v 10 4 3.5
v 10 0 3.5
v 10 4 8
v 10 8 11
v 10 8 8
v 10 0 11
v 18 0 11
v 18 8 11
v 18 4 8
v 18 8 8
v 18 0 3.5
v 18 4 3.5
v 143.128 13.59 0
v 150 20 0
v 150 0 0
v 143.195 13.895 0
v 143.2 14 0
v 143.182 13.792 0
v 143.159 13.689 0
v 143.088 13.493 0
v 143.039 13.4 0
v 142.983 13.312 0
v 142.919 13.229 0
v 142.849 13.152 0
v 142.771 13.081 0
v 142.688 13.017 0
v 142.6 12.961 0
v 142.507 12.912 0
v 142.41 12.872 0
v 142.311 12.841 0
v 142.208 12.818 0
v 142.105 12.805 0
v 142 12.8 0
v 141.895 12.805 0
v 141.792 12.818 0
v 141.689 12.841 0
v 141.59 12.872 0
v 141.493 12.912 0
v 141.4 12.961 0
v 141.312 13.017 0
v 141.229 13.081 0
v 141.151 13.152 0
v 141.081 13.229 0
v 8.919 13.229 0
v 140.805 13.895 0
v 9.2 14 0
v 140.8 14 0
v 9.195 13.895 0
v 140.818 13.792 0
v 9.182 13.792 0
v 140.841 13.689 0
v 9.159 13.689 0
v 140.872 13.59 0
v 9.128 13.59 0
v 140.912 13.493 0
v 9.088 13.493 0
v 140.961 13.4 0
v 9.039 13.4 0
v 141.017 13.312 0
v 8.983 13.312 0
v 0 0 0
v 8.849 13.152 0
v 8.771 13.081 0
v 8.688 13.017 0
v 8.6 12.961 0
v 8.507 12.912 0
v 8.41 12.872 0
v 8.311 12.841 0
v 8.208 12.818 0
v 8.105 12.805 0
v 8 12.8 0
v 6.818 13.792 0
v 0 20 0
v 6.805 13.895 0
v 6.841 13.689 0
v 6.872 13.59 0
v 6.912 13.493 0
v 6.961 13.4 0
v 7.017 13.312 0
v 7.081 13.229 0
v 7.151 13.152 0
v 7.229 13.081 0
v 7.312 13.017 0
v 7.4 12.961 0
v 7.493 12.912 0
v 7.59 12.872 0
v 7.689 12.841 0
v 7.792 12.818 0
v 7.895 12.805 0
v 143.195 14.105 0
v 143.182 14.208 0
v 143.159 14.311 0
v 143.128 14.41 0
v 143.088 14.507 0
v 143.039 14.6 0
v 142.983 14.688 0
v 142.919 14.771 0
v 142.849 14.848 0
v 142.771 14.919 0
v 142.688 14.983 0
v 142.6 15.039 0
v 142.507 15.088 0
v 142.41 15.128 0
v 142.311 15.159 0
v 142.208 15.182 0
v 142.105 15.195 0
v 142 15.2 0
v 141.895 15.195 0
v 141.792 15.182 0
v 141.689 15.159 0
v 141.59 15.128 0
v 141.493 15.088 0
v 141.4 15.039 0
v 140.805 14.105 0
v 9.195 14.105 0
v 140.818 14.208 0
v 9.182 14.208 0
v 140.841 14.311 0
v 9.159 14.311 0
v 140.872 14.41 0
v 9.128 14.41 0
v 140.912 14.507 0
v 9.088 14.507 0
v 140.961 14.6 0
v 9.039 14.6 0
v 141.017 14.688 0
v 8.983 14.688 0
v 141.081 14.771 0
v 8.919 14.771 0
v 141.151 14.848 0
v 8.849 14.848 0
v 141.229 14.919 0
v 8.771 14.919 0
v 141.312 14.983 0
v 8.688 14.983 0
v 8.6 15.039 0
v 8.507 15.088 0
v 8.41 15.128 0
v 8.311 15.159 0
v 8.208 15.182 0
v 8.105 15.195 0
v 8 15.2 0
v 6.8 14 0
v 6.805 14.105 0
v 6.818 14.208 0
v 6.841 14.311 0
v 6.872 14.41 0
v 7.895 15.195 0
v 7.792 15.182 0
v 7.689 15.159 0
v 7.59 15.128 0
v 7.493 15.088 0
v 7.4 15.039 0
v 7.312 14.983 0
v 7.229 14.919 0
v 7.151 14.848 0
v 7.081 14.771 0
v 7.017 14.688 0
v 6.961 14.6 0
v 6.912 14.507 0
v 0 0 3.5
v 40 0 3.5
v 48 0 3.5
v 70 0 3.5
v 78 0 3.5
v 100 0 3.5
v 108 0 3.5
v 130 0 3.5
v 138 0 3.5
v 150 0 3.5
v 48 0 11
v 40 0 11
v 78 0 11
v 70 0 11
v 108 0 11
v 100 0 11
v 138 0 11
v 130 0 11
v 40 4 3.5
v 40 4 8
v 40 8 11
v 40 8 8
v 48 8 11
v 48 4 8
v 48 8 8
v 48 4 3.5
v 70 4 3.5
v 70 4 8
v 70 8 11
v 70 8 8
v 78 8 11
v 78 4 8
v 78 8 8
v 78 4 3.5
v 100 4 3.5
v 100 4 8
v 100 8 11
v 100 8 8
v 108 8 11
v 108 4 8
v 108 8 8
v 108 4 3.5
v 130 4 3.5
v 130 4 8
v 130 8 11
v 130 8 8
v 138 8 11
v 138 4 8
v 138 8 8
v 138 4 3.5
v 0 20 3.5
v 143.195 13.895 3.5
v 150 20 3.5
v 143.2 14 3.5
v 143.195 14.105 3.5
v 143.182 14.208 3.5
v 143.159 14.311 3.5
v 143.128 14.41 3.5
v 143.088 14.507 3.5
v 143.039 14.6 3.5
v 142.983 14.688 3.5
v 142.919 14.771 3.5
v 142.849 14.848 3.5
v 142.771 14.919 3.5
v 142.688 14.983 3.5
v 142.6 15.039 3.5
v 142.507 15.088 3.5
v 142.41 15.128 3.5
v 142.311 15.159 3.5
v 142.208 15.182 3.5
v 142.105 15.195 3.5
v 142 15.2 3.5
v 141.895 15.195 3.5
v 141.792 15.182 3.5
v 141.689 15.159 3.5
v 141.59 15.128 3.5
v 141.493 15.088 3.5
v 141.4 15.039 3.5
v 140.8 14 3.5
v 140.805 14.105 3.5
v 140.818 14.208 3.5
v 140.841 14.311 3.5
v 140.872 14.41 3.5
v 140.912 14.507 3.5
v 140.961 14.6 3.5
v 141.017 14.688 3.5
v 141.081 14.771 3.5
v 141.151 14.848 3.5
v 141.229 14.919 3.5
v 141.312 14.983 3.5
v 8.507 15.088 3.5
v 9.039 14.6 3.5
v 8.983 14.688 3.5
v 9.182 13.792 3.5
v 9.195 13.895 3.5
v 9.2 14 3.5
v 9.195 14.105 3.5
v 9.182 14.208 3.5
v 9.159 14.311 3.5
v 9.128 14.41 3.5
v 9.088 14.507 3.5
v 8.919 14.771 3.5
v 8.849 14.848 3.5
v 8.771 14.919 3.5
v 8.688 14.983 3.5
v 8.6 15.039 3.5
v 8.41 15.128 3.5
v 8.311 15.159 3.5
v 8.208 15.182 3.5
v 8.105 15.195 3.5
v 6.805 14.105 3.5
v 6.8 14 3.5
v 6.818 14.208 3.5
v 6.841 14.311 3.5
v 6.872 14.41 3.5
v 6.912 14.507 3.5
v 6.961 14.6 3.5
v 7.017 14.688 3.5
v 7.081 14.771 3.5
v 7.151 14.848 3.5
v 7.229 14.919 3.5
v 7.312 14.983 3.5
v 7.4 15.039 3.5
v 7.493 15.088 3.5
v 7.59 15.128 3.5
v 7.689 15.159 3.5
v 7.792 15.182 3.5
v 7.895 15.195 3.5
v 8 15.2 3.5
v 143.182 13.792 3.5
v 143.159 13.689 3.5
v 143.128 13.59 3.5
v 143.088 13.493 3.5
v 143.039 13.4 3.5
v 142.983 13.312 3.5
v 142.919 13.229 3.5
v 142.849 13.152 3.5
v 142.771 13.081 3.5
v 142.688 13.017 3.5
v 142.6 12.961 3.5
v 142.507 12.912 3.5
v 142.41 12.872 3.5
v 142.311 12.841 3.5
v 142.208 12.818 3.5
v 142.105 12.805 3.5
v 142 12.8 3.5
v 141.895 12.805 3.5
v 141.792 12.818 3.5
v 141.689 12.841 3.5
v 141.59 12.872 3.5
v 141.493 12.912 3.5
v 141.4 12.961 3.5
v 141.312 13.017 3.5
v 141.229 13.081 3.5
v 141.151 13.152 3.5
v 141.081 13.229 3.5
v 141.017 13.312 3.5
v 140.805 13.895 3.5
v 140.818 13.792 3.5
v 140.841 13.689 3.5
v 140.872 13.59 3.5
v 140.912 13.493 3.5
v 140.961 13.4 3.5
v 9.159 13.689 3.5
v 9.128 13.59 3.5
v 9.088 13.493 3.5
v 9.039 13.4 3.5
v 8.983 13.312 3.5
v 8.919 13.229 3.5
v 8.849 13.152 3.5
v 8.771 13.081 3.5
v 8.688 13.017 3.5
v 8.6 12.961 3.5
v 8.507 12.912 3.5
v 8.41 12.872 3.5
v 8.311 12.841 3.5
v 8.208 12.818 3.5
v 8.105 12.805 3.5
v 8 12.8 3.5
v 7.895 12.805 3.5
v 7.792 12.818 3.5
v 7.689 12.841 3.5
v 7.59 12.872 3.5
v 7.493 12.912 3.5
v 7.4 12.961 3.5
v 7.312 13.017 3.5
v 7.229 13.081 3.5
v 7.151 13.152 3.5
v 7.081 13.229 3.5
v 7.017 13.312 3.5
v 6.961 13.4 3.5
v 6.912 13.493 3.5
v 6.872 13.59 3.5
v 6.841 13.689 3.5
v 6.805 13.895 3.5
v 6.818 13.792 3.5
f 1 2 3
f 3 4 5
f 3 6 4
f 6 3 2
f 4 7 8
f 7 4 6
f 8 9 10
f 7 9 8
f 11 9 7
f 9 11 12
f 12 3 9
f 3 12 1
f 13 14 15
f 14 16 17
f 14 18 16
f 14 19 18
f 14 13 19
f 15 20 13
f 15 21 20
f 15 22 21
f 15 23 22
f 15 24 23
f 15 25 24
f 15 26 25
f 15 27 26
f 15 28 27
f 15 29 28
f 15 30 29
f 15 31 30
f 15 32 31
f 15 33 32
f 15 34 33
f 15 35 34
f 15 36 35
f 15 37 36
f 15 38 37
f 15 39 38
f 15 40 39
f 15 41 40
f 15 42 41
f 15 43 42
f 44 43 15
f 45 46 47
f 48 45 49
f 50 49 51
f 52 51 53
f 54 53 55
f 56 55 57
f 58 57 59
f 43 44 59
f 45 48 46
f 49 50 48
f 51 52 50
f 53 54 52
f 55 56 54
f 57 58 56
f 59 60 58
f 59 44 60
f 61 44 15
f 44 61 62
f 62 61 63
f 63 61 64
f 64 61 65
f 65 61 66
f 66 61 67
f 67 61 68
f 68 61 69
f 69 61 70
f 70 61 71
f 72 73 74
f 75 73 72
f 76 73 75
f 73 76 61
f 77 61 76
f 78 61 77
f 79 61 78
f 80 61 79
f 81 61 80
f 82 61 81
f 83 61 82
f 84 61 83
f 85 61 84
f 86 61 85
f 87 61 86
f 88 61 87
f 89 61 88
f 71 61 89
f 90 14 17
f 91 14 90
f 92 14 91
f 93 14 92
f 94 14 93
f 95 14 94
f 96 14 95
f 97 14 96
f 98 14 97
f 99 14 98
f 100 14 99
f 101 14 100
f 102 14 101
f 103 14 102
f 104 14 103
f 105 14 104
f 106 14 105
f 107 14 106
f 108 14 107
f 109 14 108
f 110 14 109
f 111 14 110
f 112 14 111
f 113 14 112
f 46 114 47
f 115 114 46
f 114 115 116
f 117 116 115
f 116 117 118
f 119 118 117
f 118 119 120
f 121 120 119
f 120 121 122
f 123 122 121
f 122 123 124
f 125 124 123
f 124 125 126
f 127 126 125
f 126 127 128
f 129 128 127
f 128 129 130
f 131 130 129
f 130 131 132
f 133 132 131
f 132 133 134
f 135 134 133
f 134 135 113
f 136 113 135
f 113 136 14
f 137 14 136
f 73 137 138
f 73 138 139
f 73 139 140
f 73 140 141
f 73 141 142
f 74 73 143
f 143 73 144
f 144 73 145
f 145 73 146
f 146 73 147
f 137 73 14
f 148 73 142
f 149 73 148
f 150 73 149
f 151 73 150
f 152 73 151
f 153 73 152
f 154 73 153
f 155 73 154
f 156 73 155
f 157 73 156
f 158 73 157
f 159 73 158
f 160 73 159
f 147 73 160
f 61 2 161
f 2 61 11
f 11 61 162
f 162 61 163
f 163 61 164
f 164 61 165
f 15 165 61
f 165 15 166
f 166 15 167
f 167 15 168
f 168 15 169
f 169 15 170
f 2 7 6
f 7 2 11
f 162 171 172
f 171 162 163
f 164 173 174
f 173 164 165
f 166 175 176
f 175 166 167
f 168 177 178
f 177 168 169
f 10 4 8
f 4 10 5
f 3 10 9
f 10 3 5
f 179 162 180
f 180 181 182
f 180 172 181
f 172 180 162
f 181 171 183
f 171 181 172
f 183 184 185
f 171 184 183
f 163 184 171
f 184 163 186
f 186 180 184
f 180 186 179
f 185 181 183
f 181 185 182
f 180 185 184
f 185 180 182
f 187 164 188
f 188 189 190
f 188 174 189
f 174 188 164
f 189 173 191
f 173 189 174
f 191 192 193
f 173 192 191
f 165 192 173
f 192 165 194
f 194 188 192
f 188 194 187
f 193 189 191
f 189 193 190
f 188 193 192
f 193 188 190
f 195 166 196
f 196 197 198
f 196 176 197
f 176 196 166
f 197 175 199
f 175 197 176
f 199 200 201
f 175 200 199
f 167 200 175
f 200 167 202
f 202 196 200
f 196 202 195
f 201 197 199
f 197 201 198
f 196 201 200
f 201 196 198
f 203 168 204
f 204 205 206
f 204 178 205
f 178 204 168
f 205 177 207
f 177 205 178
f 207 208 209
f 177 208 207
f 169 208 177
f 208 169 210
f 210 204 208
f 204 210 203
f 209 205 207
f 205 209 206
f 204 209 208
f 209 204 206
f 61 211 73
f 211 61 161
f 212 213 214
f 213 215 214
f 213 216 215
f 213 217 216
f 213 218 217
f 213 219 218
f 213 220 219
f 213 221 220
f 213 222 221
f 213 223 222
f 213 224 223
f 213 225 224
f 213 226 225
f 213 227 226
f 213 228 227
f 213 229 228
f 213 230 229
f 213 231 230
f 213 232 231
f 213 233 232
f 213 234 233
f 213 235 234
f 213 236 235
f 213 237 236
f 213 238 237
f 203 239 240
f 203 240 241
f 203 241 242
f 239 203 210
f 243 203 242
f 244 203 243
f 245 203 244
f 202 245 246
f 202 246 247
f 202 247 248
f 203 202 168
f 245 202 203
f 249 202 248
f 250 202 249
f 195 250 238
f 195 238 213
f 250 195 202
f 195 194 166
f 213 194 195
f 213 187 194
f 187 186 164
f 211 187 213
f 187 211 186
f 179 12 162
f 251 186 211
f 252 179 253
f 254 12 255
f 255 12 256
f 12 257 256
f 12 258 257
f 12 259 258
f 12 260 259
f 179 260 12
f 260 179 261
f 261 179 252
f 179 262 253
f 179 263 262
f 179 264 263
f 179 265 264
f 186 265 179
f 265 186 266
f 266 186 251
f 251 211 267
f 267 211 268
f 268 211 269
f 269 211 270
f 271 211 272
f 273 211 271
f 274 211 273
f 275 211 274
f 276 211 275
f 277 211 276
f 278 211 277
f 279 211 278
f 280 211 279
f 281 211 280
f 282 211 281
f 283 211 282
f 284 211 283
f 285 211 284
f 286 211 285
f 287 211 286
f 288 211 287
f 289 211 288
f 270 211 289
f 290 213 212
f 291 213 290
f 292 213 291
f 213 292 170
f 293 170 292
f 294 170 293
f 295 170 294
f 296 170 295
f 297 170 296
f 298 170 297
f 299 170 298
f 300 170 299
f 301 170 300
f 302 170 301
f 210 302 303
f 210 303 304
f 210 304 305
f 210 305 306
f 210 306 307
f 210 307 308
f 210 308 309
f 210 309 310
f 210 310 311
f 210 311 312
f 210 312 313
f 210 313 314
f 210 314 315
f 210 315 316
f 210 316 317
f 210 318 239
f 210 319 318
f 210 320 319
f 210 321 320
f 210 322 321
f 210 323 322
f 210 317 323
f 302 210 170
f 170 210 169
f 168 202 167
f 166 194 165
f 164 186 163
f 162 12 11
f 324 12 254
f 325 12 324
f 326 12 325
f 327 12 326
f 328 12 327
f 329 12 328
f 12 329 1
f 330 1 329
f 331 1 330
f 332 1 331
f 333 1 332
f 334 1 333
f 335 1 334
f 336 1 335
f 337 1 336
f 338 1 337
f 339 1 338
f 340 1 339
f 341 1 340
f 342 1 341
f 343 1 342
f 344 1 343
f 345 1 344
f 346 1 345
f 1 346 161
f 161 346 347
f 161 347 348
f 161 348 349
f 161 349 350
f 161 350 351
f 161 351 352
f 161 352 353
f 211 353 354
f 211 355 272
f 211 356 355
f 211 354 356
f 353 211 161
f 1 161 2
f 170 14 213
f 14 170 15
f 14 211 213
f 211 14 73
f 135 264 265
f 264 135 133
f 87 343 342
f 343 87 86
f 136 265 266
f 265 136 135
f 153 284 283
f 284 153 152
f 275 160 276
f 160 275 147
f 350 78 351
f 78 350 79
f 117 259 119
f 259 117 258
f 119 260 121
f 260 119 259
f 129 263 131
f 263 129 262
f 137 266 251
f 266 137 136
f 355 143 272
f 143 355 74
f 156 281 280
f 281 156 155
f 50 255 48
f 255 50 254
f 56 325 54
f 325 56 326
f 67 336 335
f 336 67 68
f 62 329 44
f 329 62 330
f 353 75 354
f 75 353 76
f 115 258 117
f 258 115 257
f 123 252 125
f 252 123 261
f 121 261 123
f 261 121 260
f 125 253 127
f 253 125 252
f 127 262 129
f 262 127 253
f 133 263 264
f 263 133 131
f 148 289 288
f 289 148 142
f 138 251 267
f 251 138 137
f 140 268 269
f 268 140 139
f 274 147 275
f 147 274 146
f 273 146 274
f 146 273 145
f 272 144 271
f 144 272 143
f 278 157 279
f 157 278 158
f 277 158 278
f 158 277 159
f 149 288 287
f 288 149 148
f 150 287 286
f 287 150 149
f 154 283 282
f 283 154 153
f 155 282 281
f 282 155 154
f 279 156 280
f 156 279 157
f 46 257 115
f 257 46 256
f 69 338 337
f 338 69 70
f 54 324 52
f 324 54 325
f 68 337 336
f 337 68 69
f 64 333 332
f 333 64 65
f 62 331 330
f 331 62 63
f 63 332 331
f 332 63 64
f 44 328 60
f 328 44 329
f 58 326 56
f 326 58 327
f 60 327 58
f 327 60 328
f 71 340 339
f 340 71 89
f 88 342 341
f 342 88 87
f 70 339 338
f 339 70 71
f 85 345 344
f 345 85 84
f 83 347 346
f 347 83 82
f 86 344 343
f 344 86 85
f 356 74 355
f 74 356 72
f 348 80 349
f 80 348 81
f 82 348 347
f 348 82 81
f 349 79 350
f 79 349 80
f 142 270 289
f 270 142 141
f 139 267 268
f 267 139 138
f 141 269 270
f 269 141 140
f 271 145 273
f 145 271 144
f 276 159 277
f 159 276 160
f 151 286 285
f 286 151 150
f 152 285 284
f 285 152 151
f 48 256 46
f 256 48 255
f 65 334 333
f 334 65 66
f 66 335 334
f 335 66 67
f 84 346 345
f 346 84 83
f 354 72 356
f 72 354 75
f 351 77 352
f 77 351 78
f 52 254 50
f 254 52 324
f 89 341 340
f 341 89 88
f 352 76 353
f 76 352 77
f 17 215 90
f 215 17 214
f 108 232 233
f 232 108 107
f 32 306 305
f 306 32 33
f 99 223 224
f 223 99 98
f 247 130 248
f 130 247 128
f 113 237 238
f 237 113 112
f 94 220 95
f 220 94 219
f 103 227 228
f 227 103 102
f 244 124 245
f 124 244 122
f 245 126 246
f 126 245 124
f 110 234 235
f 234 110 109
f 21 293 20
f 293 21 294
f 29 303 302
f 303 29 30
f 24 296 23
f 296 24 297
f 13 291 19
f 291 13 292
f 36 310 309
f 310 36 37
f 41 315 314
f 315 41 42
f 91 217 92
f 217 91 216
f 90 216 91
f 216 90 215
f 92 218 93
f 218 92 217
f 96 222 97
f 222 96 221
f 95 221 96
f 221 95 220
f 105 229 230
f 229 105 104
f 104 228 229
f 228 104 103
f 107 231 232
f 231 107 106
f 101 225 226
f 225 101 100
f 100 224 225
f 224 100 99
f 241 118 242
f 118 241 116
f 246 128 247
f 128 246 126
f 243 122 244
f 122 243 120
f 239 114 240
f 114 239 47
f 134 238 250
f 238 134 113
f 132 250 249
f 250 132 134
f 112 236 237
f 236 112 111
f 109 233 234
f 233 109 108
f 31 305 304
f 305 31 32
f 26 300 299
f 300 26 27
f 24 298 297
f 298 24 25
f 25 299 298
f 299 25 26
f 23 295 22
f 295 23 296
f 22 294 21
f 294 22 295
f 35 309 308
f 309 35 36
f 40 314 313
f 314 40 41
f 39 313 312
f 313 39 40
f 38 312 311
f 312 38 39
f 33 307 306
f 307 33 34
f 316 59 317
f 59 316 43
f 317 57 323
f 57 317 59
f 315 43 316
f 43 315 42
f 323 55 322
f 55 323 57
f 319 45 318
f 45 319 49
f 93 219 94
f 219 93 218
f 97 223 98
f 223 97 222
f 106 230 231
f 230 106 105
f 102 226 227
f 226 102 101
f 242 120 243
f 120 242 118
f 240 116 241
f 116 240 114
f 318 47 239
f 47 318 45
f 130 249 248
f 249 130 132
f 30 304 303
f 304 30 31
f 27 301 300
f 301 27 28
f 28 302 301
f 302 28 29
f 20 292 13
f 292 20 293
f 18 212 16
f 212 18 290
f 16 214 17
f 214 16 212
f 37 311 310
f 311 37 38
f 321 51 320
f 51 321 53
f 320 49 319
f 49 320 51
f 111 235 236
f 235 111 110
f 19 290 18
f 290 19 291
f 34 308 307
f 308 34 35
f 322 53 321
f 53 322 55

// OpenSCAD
$fs = 0.1;  // Don't generate smaller facets than 0.1 mm
$fa = 5;    // Don't generate larger angles than 5 degrees

module base() {
    color("Blue")cube([150, 20, 3.5]);
    }
    
module hook() {
    union() {
        color("White")cube([8,4,11]);
        color("White")translate([0,0,8])cube([8,8,3]);
        }
    }    

module screwHoles() {
        translate([8,14,-1])cylinder(r=1.2, h=20);
        translate([142,14,-1])cylinder(r=1.2, h=20);

    }
difference(){
    union(){    
        base();
        for (a = [ 0 : 30 : 140 ]) translate([a + 10,0,0]) hook();
        }
    screwHoles();
}
